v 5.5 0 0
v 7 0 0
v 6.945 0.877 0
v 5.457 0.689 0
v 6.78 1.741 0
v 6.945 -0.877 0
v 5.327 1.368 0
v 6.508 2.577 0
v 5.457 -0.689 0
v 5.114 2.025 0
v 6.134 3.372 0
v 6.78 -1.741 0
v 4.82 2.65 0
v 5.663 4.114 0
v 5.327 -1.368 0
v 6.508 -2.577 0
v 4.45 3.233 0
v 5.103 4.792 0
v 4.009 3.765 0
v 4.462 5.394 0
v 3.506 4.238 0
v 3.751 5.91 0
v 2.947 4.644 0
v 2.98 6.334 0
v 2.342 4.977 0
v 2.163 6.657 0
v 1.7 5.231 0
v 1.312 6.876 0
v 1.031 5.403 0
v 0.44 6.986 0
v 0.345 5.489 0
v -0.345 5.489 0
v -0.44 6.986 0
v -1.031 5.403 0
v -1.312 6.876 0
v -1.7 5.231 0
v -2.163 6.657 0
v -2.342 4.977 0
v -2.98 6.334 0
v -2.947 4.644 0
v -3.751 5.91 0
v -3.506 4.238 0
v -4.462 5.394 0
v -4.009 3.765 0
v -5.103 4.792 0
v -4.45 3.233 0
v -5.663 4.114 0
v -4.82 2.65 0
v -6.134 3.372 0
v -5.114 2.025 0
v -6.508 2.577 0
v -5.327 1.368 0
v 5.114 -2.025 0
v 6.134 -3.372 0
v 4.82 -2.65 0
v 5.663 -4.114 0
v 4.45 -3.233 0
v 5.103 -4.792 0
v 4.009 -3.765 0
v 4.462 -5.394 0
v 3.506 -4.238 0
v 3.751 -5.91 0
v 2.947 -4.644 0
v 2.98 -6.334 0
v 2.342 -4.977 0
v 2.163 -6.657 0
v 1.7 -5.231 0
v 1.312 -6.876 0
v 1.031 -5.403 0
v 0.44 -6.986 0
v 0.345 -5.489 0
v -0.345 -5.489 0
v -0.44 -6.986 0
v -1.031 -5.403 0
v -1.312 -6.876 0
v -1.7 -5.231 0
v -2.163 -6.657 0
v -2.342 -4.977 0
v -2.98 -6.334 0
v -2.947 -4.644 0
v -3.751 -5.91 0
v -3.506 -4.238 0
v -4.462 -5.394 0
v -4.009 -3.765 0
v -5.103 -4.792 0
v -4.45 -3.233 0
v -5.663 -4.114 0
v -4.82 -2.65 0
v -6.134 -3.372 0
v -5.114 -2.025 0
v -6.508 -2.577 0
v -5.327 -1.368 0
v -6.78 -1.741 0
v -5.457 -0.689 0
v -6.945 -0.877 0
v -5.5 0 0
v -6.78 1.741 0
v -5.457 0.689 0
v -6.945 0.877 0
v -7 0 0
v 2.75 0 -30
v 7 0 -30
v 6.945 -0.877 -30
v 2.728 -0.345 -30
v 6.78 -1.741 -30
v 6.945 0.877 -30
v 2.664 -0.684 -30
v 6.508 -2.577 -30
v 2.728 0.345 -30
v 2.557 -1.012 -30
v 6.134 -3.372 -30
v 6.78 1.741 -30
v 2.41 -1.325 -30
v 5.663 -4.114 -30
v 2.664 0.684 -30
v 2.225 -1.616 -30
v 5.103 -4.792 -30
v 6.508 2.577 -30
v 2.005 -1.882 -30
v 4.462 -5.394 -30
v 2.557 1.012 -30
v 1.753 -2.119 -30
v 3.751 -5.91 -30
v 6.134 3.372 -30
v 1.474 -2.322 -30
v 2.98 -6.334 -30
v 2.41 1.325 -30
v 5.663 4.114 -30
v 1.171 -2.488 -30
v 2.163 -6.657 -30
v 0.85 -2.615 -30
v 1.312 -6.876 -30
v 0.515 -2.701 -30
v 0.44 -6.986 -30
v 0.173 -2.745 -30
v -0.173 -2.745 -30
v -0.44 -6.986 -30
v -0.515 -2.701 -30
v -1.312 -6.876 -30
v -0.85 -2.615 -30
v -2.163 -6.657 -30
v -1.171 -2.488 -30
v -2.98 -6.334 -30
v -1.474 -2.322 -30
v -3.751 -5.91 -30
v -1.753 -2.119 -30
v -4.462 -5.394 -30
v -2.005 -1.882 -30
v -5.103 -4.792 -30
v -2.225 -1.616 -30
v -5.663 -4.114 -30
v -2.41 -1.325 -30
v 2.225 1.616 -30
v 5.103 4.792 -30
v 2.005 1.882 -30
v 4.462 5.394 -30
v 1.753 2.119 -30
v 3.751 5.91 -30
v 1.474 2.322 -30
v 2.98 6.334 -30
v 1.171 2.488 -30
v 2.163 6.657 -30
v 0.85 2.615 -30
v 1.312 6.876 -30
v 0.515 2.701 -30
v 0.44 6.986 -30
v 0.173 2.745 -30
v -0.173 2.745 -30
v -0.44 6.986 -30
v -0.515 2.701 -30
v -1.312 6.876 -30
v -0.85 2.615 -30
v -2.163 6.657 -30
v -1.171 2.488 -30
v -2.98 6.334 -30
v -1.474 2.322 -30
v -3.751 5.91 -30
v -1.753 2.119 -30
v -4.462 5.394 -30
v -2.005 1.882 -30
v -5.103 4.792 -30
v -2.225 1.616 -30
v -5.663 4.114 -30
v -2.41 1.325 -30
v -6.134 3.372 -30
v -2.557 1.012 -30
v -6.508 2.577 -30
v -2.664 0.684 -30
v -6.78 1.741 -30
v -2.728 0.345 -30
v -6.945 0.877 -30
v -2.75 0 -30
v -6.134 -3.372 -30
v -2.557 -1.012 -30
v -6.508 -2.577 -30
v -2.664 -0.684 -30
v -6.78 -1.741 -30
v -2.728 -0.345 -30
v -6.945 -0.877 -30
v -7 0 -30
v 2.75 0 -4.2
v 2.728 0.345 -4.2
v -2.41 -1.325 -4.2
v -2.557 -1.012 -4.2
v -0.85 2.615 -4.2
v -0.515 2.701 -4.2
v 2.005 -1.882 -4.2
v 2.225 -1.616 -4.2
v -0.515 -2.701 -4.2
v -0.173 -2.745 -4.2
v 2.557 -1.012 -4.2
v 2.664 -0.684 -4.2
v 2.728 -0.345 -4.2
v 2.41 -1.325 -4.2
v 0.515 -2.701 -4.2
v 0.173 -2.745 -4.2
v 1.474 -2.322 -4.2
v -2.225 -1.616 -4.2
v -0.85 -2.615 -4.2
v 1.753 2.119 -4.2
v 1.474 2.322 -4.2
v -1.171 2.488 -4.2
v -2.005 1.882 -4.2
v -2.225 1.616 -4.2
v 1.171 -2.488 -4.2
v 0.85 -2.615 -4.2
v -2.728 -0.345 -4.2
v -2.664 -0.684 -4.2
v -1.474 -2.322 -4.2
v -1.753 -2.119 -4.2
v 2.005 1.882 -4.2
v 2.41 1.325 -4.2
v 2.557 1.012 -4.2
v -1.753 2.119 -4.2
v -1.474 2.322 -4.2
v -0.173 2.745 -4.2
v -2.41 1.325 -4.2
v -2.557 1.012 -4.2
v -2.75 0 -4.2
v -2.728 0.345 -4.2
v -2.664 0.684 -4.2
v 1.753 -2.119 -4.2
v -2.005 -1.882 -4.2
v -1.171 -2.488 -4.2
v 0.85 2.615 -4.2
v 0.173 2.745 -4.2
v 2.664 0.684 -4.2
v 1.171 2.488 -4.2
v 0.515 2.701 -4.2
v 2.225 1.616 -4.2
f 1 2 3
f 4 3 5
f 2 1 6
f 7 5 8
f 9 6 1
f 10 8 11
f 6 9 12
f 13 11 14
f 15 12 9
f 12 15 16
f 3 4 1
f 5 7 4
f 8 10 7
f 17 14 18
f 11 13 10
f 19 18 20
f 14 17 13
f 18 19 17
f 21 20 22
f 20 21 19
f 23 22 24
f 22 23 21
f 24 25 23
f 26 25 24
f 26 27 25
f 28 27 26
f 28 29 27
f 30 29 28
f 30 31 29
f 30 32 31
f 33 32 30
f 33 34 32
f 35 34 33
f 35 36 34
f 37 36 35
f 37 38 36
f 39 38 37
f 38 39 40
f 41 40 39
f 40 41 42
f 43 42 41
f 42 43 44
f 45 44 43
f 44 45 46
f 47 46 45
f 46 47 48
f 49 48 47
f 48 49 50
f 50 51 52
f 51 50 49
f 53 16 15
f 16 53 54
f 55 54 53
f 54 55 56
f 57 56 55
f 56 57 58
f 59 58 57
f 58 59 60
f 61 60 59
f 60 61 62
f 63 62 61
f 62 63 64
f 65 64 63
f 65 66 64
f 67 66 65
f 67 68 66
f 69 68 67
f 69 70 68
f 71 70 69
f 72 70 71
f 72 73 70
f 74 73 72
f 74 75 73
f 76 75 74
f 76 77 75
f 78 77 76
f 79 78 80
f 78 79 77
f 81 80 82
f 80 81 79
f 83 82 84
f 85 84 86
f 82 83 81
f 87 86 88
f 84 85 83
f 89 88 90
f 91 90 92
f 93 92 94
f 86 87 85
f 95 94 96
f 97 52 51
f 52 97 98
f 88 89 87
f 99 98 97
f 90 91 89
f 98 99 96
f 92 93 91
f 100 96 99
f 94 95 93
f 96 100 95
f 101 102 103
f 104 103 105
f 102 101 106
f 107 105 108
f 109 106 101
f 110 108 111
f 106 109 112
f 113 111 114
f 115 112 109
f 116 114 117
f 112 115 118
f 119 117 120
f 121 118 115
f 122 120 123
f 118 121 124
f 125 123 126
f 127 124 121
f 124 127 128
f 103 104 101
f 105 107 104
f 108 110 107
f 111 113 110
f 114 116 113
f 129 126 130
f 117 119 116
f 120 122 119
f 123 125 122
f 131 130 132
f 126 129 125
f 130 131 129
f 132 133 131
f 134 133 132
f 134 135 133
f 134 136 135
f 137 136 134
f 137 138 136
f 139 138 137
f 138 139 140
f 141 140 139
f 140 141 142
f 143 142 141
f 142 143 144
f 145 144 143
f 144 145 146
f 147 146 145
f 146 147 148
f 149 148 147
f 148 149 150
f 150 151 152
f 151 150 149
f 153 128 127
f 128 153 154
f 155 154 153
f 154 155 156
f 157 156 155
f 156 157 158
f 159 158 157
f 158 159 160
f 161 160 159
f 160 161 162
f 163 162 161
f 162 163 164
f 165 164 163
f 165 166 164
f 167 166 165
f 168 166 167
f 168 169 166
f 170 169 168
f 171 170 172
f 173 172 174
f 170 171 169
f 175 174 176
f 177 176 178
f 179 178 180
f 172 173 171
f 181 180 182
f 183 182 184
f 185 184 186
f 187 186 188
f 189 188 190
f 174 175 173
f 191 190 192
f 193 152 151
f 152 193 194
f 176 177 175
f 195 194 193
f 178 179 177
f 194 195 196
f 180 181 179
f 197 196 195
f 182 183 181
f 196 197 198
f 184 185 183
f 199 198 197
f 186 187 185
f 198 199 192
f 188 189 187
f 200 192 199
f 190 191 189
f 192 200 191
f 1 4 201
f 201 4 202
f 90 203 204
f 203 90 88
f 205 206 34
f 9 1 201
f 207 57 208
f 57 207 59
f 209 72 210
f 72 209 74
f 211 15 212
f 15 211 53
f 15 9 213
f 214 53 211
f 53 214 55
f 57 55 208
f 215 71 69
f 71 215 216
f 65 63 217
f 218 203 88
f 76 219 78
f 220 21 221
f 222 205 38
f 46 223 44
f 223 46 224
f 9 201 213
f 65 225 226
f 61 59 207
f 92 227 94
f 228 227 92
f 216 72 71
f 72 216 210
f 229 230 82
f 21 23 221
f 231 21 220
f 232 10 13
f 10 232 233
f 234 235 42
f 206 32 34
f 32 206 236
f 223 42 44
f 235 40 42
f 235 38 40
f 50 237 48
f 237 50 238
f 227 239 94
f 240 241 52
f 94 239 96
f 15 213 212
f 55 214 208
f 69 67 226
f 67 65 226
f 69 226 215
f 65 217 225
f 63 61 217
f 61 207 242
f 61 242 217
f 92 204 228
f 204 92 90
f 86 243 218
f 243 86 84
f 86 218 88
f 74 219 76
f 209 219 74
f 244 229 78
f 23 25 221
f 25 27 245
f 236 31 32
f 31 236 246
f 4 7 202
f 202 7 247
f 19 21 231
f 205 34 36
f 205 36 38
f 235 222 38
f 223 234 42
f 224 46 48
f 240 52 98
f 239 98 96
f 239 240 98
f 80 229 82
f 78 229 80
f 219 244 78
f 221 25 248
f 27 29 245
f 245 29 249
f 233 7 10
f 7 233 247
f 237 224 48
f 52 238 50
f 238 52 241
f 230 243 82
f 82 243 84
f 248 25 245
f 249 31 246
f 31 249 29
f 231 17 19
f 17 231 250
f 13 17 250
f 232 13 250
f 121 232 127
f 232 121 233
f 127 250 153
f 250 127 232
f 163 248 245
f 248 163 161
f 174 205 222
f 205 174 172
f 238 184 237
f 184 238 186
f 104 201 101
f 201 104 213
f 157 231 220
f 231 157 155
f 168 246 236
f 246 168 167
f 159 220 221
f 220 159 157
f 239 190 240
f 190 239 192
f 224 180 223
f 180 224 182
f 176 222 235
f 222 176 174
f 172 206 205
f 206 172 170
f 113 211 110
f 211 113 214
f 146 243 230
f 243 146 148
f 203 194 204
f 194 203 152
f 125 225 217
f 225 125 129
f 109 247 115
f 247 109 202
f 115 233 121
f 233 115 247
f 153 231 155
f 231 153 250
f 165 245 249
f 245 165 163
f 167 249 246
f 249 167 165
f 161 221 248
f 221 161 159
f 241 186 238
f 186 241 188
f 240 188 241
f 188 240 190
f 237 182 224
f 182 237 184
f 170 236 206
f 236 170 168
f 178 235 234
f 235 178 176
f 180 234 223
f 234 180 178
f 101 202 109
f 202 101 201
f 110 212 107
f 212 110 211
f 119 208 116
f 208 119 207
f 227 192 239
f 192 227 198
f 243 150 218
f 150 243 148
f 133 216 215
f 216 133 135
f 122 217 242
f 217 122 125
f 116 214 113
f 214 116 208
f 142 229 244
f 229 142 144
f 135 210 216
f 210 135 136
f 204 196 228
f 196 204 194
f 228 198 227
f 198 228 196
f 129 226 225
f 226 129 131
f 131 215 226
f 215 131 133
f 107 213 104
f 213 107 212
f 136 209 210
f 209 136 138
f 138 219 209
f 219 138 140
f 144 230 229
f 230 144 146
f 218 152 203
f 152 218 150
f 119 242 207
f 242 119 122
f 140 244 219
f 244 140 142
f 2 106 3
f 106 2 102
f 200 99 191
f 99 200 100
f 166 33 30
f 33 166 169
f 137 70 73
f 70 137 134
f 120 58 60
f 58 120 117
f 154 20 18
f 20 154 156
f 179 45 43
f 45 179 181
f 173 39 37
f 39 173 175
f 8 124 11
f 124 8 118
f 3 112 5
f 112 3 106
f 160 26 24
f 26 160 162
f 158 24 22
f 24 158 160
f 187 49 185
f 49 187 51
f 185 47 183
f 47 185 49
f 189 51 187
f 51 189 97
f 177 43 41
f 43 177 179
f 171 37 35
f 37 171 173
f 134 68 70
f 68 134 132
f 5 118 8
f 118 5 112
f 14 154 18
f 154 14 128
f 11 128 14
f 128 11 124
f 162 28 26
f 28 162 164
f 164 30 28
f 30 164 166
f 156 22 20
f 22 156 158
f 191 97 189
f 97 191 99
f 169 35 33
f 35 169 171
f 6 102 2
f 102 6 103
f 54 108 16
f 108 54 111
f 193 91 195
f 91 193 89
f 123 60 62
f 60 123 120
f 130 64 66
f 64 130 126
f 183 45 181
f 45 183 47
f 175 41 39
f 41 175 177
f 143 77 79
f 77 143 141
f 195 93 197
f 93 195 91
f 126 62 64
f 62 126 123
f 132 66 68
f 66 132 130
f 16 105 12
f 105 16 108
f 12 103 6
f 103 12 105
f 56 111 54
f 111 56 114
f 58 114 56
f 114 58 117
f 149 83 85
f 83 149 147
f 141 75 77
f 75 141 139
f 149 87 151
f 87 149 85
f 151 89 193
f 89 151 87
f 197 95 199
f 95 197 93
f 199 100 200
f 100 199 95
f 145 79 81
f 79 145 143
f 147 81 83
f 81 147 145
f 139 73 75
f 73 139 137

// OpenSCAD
$fn = 50;


difference() {
	union() {
		translate(v = [0, 0, -30.0000000000]) {
			cylinder(h = 30, r = 7.0000000000);
		}
	}
	union() {
		translate(v = [0, 0, 0]) {
			rotate(a = [0, 0, 0]) {
				difference() {
					union() {
						#translate(v = [0, 0, -30.0000000000]) {
							cylinder(h = 30, r = 2.2500000000);
						}
						#translate(v = [0, 0, -4.2000000000]) {
							cylinder(h = 4.2000000000, r = 7.0000000000, r1 = 2.7500000000, r2 = 5.5000000000);
						}
						#translate(v = [0, 0, -30.0000000000]) {
							cylinder(h = 30, r = 2.7500000000);
						}
						#translate(v = [0, 0, -30.0000000000]) {
							cylinder(h = 30, r = 2.2500000000);
						}
					}
					union();
				}
			}
		}
	}
}
